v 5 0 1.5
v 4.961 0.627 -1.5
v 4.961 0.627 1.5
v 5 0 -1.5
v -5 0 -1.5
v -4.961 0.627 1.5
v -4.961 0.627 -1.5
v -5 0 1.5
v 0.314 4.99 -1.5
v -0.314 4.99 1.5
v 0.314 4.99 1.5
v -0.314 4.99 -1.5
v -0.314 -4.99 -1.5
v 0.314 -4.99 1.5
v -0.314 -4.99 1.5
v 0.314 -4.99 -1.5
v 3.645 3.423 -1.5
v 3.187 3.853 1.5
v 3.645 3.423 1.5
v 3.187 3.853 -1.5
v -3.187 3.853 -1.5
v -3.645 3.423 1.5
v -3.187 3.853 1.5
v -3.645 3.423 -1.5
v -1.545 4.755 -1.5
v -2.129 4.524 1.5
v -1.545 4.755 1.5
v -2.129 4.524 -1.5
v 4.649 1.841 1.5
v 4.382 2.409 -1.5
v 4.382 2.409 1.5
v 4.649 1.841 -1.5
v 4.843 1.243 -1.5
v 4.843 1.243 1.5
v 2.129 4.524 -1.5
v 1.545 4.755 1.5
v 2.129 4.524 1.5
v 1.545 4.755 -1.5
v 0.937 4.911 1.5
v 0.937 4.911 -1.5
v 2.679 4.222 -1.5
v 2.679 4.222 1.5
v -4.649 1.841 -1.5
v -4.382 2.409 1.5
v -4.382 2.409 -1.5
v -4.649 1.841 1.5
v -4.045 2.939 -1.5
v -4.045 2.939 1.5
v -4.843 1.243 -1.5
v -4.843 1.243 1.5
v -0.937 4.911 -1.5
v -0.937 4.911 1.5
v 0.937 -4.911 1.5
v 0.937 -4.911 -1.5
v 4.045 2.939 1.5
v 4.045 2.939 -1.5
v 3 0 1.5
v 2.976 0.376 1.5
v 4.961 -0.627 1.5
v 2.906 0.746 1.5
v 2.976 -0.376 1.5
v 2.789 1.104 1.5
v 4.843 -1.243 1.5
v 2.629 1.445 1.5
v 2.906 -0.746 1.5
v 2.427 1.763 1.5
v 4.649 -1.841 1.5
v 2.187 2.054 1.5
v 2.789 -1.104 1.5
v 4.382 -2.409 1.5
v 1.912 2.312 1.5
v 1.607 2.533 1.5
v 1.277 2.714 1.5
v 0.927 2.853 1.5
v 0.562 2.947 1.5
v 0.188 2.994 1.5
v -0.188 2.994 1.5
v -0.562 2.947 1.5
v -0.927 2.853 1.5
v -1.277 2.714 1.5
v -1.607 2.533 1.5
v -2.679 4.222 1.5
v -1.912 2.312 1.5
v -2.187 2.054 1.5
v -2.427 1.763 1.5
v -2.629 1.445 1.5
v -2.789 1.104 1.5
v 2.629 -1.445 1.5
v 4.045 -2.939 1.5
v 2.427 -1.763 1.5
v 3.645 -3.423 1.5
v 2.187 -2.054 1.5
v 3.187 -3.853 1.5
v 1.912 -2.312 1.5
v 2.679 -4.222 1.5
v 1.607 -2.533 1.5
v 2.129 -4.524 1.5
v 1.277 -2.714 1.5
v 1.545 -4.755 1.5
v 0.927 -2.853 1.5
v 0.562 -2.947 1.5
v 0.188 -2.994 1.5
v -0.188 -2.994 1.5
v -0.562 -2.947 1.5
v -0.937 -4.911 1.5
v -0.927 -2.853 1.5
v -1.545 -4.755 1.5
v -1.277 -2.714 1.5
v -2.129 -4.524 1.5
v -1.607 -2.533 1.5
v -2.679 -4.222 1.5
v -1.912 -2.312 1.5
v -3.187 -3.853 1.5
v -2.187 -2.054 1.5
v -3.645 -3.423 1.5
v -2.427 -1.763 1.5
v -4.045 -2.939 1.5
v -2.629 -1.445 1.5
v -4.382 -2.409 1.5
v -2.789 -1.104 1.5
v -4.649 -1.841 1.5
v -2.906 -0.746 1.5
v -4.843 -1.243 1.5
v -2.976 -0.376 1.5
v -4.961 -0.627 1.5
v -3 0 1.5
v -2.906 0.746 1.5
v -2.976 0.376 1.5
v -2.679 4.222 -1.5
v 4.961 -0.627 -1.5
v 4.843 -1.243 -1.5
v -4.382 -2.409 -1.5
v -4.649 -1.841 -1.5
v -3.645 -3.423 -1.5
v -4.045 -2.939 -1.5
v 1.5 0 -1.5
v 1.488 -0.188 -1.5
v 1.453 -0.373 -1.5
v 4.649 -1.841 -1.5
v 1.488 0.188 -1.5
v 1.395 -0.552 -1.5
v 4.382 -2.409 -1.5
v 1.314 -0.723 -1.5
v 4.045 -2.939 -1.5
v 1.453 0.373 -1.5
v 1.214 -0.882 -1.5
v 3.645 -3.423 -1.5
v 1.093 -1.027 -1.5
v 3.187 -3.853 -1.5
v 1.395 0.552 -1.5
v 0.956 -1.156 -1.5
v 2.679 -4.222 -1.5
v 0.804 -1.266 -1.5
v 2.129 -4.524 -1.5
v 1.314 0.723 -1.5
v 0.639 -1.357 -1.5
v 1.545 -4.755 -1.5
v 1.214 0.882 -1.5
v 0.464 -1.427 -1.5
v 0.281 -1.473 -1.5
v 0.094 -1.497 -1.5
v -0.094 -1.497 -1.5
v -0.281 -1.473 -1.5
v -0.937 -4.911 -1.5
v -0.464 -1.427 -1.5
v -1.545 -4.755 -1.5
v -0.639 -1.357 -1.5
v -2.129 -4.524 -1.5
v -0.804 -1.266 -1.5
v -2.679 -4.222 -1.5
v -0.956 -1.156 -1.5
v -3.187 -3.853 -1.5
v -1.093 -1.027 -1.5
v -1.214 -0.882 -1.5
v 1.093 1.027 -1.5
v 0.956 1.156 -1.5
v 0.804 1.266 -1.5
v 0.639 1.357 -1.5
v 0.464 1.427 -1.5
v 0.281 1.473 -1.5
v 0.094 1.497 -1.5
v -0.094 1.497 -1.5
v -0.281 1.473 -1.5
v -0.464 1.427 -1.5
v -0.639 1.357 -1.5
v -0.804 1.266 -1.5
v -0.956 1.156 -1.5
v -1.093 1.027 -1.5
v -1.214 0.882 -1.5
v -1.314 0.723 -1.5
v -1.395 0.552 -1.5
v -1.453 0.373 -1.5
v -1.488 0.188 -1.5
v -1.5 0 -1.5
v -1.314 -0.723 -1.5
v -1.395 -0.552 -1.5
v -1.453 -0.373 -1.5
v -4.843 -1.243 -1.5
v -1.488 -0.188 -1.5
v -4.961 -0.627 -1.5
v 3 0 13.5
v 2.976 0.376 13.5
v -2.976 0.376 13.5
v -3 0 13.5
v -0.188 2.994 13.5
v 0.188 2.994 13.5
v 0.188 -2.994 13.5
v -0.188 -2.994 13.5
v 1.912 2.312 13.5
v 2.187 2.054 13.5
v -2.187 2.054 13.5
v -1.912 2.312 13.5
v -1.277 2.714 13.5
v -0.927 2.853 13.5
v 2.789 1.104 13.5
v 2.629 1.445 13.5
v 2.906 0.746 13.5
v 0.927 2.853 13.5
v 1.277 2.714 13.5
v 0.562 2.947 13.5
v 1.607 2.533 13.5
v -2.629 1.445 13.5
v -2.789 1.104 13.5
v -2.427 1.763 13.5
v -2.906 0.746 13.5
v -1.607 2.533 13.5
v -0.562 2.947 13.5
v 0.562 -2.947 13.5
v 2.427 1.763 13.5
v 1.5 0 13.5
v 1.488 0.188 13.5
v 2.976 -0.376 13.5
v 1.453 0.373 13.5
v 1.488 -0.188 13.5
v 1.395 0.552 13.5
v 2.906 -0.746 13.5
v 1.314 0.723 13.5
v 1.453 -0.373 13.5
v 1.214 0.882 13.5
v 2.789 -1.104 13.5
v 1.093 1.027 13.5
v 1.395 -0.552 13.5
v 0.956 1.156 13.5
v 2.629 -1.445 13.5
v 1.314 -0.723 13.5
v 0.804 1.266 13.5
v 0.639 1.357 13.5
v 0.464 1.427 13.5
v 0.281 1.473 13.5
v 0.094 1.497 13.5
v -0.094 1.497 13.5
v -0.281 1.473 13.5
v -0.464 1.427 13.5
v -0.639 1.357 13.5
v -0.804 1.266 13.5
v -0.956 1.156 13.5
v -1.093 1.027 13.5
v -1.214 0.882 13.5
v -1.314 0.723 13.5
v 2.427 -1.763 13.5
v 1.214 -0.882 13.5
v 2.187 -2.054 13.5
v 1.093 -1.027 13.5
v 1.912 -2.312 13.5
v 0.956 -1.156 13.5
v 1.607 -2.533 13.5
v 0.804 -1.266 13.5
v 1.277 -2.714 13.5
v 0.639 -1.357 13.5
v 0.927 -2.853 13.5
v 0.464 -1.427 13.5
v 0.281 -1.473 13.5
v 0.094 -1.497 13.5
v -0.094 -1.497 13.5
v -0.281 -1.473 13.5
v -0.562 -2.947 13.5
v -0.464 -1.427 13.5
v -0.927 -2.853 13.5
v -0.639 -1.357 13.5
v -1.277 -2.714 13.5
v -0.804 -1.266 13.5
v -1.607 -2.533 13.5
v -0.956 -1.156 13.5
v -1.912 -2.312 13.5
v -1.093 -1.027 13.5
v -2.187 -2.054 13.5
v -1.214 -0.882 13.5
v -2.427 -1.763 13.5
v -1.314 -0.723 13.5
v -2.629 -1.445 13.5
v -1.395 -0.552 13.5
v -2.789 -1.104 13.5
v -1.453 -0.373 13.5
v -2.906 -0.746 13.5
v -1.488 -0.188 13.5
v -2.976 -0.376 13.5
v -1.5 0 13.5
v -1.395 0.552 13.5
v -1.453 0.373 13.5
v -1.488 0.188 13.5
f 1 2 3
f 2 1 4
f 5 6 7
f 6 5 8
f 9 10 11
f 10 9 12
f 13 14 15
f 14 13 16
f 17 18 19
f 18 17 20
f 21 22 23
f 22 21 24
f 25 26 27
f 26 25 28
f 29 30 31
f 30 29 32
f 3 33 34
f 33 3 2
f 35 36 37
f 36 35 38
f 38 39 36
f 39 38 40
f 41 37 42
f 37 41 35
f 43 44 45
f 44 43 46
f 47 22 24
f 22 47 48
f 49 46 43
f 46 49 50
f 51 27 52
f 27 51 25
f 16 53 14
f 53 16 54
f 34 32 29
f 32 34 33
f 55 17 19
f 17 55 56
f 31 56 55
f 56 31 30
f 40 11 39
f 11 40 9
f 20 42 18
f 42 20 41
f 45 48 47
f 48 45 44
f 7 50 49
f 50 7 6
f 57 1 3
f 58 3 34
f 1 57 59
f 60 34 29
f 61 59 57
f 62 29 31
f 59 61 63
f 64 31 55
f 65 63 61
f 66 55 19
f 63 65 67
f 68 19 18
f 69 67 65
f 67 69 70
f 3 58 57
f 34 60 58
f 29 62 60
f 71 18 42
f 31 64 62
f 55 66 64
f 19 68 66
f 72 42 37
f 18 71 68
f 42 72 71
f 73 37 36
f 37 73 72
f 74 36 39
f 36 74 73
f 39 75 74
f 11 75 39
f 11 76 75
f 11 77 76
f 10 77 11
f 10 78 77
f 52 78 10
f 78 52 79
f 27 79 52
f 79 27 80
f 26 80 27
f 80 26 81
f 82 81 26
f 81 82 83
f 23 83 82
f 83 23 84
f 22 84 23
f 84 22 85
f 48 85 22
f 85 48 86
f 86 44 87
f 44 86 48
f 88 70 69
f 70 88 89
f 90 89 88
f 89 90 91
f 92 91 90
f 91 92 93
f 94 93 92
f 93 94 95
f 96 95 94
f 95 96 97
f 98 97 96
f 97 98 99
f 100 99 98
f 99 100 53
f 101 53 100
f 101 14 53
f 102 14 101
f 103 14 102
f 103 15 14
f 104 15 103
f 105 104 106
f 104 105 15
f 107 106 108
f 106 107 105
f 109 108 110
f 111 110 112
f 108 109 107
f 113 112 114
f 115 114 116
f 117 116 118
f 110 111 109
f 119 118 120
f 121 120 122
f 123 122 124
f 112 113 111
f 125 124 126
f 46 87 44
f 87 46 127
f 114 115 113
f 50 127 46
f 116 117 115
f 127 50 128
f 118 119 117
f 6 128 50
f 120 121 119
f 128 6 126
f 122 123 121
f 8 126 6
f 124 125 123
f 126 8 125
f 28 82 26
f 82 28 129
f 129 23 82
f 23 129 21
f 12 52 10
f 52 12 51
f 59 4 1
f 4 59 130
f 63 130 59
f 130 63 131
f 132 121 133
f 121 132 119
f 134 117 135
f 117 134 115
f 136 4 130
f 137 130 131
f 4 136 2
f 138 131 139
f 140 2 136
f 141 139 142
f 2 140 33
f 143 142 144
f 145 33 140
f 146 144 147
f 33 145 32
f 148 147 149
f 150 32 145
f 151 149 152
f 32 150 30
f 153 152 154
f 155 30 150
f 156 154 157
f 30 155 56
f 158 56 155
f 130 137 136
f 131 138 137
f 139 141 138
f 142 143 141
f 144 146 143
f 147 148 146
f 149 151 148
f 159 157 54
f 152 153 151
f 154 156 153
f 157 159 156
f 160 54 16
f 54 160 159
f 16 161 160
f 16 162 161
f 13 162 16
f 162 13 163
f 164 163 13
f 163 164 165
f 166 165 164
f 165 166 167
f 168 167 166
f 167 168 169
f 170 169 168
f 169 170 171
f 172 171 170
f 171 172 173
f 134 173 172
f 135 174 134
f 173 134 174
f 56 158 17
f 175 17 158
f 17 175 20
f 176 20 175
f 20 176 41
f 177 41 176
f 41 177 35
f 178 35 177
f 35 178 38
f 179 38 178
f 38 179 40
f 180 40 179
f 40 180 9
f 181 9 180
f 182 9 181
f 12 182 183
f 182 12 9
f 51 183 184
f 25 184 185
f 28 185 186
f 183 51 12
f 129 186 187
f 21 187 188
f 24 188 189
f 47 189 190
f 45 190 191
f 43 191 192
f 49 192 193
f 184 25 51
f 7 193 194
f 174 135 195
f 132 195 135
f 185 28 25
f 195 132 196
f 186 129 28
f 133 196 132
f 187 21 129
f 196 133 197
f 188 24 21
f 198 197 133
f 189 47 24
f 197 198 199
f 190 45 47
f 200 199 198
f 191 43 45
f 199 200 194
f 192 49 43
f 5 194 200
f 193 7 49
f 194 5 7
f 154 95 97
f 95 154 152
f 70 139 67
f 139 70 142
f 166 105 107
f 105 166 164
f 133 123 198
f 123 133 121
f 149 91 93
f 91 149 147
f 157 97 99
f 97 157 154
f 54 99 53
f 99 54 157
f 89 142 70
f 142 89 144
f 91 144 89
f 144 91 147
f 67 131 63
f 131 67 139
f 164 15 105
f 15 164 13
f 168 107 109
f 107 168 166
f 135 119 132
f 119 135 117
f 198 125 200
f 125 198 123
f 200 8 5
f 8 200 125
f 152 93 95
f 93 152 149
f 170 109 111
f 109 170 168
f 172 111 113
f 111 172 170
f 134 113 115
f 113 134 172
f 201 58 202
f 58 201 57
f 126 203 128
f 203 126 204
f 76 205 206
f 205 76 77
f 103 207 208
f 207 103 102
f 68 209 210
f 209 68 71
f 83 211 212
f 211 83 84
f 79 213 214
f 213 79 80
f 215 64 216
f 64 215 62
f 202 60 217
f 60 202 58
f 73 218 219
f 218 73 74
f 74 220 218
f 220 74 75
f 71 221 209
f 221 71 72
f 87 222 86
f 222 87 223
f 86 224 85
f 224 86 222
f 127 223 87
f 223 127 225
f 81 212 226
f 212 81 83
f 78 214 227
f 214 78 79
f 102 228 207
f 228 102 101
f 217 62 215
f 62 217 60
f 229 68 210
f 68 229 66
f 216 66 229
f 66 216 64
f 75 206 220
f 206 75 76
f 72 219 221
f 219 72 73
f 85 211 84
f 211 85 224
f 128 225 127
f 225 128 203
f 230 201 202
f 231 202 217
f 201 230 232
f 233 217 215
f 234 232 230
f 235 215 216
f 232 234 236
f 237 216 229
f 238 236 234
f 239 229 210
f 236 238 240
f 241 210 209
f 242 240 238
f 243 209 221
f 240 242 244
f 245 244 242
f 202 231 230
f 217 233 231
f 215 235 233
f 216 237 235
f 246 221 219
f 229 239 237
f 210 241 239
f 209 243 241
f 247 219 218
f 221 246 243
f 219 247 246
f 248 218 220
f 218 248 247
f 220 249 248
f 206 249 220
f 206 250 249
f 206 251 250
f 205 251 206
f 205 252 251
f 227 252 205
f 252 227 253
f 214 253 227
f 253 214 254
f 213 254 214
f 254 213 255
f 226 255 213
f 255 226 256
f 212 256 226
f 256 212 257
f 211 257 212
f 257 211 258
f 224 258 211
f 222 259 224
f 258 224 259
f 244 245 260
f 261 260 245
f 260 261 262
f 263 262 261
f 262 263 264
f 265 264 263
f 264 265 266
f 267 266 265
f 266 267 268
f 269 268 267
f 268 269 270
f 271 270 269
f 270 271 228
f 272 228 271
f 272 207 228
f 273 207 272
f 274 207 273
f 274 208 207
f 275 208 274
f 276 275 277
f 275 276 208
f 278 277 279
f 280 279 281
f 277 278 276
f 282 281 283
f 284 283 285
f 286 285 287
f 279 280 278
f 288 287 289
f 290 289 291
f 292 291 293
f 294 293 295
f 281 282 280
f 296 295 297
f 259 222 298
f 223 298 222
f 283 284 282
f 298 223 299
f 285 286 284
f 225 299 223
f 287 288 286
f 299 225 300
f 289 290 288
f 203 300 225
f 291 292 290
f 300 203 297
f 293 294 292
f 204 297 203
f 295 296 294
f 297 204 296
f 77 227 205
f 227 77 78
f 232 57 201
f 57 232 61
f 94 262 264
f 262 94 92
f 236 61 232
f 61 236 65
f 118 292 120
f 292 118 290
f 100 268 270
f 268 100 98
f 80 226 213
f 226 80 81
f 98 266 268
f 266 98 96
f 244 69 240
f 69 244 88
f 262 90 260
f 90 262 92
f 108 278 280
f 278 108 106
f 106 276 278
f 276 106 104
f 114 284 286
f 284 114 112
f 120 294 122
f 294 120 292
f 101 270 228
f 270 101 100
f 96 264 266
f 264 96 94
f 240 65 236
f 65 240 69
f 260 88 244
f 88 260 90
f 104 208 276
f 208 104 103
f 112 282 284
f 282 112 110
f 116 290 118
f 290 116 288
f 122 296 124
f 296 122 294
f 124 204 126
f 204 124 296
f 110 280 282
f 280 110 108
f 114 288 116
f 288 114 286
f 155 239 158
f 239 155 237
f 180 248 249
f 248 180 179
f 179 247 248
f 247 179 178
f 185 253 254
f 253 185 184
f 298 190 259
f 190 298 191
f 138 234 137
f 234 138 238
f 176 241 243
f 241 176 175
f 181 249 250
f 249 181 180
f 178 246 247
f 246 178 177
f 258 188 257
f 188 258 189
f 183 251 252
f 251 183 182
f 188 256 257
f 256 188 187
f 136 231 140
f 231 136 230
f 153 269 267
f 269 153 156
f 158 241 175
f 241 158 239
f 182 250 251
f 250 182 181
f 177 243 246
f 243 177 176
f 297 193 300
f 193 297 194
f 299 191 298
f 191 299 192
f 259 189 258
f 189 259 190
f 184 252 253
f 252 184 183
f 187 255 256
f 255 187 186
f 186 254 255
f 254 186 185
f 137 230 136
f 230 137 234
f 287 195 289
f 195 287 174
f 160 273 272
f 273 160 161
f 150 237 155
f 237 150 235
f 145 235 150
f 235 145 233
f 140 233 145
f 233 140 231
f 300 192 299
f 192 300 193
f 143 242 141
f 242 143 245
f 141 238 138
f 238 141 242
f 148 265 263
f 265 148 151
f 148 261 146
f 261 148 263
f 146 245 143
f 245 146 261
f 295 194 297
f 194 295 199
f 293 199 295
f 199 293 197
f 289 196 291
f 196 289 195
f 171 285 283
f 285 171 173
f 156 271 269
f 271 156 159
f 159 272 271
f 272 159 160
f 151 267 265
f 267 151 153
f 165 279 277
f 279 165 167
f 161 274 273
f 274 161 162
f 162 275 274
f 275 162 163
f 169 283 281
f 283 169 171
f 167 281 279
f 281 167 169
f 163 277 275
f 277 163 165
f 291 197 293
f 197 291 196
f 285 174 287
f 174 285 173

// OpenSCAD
$fn = 50;


difference() {
	union() {
		translate(v = [0, 0, -1.5000000000]) {
			rotate(a = [0, 0, 0]) {
				cylinder(h = 3, r = 5.0000000000);
			}
		}
		translate(v = [0, 0, -1.5000000000]) {
			rotate(a = [0, 0, 0]) {
				cylinder(h = 15, r = 3.0000000000);
			}
		}
	}
	union() {
		translate(v = [0, 0, -125.0000000000]) {
			rotate(a = [0, 0, 0]) {
				cylinder(h = 250, r = 1.5000000000);
			}
		}
	}
}
